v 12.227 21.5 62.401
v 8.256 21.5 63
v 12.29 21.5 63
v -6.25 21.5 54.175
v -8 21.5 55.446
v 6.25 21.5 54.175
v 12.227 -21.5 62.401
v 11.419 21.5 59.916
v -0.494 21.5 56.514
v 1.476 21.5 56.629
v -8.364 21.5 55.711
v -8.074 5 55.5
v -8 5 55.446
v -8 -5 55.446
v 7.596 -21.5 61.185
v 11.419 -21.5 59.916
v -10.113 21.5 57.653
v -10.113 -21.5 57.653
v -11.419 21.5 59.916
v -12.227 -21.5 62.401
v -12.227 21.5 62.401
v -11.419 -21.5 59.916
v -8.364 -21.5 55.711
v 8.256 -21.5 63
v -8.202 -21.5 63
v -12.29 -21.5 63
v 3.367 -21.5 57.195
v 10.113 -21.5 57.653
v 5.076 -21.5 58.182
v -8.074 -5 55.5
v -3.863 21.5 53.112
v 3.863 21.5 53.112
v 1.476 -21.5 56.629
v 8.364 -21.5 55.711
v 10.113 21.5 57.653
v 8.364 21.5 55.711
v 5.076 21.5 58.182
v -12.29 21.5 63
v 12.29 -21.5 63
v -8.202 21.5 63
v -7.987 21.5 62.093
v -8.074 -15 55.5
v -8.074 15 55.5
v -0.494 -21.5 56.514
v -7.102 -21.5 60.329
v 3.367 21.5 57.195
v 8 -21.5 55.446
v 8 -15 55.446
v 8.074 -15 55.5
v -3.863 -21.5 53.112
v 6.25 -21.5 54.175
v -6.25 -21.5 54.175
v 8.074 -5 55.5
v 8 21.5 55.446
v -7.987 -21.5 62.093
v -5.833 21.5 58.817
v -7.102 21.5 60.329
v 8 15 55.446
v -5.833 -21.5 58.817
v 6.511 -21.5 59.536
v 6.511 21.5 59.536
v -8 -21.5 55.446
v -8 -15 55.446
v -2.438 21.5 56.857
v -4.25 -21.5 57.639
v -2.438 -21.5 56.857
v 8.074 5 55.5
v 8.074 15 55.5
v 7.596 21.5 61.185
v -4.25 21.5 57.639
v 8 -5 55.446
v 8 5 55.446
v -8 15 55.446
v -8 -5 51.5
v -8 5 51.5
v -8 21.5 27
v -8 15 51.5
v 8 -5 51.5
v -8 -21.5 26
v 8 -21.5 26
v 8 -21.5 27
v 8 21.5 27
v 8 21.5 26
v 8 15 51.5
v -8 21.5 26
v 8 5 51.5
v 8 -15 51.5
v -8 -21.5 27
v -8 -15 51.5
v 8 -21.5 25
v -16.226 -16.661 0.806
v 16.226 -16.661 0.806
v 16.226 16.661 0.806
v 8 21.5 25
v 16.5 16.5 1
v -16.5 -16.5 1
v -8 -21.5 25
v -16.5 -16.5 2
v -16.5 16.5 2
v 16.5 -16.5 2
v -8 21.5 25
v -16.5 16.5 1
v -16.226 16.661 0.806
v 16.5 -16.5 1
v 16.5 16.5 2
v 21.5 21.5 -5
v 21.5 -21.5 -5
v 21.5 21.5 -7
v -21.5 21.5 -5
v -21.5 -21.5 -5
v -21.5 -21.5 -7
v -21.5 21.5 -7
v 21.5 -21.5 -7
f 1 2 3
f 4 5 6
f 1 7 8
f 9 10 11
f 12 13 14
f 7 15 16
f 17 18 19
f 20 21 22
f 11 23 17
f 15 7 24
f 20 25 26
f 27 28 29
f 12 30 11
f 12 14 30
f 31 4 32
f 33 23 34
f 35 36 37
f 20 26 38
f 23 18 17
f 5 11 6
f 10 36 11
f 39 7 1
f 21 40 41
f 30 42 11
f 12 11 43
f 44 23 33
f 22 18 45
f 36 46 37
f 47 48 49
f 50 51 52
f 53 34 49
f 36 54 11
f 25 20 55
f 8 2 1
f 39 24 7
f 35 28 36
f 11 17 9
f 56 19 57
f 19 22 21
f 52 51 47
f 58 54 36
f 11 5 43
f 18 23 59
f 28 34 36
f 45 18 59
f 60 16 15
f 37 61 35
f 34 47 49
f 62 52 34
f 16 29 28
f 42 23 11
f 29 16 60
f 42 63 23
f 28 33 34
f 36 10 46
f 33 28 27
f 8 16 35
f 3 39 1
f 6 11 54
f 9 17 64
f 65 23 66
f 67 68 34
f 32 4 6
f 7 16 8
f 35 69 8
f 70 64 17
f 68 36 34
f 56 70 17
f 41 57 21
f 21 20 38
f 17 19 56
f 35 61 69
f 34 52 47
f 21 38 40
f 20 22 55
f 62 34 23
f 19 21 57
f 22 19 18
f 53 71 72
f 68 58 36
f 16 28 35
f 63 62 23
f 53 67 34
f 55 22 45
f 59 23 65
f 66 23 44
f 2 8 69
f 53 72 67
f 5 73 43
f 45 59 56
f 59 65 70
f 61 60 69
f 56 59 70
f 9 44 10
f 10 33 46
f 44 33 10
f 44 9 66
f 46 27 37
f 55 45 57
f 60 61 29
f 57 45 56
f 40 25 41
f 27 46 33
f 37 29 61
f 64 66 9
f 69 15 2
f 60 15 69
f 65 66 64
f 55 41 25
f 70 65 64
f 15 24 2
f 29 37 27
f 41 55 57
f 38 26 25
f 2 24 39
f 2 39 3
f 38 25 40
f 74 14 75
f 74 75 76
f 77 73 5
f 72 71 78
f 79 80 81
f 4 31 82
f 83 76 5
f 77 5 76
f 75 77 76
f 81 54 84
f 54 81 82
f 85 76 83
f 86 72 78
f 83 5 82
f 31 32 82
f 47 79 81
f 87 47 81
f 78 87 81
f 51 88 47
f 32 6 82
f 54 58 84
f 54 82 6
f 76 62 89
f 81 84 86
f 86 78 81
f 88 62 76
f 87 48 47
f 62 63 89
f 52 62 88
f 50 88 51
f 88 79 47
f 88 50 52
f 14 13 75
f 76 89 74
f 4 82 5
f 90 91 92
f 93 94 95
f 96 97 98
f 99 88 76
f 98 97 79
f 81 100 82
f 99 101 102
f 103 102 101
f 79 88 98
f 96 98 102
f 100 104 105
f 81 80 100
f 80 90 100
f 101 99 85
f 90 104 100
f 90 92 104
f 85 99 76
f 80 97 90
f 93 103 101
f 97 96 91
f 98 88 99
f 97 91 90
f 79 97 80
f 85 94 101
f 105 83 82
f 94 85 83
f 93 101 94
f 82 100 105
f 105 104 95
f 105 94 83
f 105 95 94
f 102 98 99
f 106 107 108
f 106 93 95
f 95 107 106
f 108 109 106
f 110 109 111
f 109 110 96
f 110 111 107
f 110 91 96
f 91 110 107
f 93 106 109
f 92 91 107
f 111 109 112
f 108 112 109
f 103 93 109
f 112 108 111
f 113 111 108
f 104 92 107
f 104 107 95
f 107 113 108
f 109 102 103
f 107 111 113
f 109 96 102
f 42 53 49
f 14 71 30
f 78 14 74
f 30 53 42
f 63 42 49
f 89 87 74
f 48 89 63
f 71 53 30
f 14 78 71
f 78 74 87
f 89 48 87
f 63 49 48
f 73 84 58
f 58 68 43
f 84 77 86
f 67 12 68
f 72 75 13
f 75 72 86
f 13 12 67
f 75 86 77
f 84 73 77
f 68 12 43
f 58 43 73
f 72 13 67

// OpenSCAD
module zipTieHoles() {
    translate([0,-10,53.5])
        cube([50,10,4], center=true);            
        
    translate([0,10,53.5])
        cube([50,10,4], center=true);            
}

module cradle() {
    difference() {

        translate([0,0,65])
        rotate([90,0,0])
            cylinder(h=43, d=25, center=true);
    
        translate([0,0,65])
        rotate([90,0,0])
            cylinder(h=44, d=17, center=true);
            
        translate([0,0,65+50/2 -2])
            cube([50,50,50], center=true);
    }
}

module stem() {
    translate([0,0,25+1+15])
        cube([16,43,30],center=true);

    translate([0,0,25+1])
        hull() {
            cube([16,43,2], center=true);
            
            translate([0,0,-25])
                cube([33,33,2], center=true);
        }    

}


module base() {
    hull() {
        cube([33,33,2], center=true);
        
        translate([0,0,-6])
            cube([43,43,2], center=true);
    }
}

difference() {

    union() {
        cradle();
        stem();
        base();
    }
    
    zipTieHoles();
}
